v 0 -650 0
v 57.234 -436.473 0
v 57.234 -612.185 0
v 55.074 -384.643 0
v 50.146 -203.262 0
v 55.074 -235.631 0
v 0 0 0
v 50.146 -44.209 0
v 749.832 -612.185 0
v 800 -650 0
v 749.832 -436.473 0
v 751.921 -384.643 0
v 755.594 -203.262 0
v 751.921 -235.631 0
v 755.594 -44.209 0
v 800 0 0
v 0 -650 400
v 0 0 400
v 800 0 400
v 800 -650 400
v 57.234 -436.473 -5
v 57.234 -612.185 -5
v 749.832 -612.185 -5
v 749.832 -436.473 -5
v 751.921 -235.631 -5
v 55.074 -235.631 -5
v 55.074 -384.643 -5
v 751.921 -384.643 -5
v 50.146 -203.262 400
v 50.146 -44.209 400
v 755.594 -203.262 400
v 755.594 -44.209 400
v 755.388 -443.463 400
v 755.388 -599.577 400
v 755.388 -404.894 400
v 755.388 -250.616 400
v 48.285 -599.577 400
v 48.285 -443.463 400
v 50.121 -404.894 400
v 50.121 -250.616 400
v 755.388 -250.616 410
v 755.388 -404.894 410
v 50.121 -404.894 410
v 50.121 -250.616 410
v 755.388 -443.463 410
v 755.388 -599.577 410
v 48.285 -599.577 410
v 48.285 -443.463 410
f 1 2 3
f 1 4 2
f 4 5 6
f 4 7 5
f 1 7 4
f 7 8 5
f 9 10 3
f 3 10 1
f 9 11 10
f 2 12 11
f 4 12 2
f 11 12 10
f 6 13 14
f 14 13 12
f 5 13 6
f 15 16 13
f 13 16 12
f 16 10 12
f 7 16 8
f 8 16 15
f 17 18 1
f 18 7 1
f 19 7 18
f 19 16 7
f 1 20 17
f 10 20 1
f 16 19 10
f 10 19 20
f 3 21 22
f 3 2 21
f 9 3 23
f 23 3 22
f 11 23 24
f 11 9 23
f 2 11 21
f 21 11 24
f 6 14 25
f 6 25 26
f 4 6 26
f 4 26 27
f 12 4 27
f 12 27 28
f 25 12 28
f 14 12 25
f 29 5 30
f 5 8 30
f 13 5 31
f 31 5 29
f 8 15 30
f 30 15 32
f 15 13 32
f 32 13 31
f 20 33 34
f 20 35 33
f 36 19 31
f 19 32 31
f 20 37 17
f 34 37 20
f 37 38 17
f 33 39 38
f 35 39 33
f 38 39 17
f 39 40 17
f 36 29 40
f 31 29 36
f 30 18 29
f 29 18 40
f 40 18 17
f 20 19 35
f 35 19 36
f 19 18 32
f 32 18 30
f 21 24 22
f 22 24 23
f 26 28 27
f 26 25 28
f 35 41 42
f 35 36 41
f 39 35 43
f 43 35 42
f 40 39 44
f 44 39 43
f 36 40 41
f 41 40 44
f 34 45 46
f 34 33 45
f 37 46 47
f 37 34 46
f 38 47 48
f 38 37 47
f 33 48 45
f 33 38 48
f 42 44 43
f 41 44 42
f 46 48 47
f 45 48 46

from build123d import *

# Parameters (mm, degrees)
SKETCH_W      = 800
SKETCH_H      = 400
PAD_DEPTH     = 650
SKETCH001_W   = 705.447479
SKETCH001_H   = 159.053192
POCKET_DEPTH  = 400.001
SKETCH002_W   = 696.846951
SKETCH002_H   = 149.011963
SKETCH002_W_2 = 692.598503
SKETCH002_H_2 = 175.711151
PAD001_DEPTH  = 5
SKETCH003_W   = 705.267067
SKETCH003_H   = 154.277191
SKETCH003_W_2 = 707.103642
SKETCH003_H_2 = 156.113739
PAD002_DEPTH  = 10


with BuildPart() as part:
    # Sketch → Pad (new body)
    with BuildSketch(Plane.XZ):
        with Locations((400, 200)):
            Rectangle(SKETCH_W, SKETCH_H)
    extrude(amount=PAD_DEPTH)

    # Sketch001 (on Face1 of Pad) → Pocket (cut, through all)
    with BuildSketch(Plane(origin=(0, 0, 0), x_dir=(1, 0, 0), z_dir=(0, 0, -1))):
        with Locations((402.870193, 123.735901)):
            Rectangle(SKETCH001_W, SKETCH001_H)
    extrude(amount=-POCKET_DEPTH, mode=Mode.SUBTRACT)

    # Sketch002 (on Face1 of Pocket) → Pad001 (join)
    with BuildSketch(Plane(origin=(0, 0, 0), x_dir=(1, 0, 0), z_dir=(0, 0, -1))):
        with Locations((403.497789, 310.137177)):
            Rectangle(SKETCH002_W, SKETCH002_H)
        with Locations((403.533207, 524.328995)):
            Rectangle(SKETCH002_W_2, SKETCH002_H_2)
    extrude(amount=PAD001_DEPTH)

    # Sketch003 (on Face18 of Pad001) → Pad002 (join)
    with BuildSketch(Plane(origin=(0, 0, 400), x_dir=(-1, 0, 0), z_dir=(0, 0, 1))):
        with Locations((-402.754955, 327.754989)):
            Rectangle(SKETCH003_W, SKETCH003_H)
        with Locations((-401.836668, 521.51973)):
            Rectangle(SKETCH003_W_2, SKETCH003_H_2)
    extrude(amount=PAD002_DEPTH)


solid = part.part
